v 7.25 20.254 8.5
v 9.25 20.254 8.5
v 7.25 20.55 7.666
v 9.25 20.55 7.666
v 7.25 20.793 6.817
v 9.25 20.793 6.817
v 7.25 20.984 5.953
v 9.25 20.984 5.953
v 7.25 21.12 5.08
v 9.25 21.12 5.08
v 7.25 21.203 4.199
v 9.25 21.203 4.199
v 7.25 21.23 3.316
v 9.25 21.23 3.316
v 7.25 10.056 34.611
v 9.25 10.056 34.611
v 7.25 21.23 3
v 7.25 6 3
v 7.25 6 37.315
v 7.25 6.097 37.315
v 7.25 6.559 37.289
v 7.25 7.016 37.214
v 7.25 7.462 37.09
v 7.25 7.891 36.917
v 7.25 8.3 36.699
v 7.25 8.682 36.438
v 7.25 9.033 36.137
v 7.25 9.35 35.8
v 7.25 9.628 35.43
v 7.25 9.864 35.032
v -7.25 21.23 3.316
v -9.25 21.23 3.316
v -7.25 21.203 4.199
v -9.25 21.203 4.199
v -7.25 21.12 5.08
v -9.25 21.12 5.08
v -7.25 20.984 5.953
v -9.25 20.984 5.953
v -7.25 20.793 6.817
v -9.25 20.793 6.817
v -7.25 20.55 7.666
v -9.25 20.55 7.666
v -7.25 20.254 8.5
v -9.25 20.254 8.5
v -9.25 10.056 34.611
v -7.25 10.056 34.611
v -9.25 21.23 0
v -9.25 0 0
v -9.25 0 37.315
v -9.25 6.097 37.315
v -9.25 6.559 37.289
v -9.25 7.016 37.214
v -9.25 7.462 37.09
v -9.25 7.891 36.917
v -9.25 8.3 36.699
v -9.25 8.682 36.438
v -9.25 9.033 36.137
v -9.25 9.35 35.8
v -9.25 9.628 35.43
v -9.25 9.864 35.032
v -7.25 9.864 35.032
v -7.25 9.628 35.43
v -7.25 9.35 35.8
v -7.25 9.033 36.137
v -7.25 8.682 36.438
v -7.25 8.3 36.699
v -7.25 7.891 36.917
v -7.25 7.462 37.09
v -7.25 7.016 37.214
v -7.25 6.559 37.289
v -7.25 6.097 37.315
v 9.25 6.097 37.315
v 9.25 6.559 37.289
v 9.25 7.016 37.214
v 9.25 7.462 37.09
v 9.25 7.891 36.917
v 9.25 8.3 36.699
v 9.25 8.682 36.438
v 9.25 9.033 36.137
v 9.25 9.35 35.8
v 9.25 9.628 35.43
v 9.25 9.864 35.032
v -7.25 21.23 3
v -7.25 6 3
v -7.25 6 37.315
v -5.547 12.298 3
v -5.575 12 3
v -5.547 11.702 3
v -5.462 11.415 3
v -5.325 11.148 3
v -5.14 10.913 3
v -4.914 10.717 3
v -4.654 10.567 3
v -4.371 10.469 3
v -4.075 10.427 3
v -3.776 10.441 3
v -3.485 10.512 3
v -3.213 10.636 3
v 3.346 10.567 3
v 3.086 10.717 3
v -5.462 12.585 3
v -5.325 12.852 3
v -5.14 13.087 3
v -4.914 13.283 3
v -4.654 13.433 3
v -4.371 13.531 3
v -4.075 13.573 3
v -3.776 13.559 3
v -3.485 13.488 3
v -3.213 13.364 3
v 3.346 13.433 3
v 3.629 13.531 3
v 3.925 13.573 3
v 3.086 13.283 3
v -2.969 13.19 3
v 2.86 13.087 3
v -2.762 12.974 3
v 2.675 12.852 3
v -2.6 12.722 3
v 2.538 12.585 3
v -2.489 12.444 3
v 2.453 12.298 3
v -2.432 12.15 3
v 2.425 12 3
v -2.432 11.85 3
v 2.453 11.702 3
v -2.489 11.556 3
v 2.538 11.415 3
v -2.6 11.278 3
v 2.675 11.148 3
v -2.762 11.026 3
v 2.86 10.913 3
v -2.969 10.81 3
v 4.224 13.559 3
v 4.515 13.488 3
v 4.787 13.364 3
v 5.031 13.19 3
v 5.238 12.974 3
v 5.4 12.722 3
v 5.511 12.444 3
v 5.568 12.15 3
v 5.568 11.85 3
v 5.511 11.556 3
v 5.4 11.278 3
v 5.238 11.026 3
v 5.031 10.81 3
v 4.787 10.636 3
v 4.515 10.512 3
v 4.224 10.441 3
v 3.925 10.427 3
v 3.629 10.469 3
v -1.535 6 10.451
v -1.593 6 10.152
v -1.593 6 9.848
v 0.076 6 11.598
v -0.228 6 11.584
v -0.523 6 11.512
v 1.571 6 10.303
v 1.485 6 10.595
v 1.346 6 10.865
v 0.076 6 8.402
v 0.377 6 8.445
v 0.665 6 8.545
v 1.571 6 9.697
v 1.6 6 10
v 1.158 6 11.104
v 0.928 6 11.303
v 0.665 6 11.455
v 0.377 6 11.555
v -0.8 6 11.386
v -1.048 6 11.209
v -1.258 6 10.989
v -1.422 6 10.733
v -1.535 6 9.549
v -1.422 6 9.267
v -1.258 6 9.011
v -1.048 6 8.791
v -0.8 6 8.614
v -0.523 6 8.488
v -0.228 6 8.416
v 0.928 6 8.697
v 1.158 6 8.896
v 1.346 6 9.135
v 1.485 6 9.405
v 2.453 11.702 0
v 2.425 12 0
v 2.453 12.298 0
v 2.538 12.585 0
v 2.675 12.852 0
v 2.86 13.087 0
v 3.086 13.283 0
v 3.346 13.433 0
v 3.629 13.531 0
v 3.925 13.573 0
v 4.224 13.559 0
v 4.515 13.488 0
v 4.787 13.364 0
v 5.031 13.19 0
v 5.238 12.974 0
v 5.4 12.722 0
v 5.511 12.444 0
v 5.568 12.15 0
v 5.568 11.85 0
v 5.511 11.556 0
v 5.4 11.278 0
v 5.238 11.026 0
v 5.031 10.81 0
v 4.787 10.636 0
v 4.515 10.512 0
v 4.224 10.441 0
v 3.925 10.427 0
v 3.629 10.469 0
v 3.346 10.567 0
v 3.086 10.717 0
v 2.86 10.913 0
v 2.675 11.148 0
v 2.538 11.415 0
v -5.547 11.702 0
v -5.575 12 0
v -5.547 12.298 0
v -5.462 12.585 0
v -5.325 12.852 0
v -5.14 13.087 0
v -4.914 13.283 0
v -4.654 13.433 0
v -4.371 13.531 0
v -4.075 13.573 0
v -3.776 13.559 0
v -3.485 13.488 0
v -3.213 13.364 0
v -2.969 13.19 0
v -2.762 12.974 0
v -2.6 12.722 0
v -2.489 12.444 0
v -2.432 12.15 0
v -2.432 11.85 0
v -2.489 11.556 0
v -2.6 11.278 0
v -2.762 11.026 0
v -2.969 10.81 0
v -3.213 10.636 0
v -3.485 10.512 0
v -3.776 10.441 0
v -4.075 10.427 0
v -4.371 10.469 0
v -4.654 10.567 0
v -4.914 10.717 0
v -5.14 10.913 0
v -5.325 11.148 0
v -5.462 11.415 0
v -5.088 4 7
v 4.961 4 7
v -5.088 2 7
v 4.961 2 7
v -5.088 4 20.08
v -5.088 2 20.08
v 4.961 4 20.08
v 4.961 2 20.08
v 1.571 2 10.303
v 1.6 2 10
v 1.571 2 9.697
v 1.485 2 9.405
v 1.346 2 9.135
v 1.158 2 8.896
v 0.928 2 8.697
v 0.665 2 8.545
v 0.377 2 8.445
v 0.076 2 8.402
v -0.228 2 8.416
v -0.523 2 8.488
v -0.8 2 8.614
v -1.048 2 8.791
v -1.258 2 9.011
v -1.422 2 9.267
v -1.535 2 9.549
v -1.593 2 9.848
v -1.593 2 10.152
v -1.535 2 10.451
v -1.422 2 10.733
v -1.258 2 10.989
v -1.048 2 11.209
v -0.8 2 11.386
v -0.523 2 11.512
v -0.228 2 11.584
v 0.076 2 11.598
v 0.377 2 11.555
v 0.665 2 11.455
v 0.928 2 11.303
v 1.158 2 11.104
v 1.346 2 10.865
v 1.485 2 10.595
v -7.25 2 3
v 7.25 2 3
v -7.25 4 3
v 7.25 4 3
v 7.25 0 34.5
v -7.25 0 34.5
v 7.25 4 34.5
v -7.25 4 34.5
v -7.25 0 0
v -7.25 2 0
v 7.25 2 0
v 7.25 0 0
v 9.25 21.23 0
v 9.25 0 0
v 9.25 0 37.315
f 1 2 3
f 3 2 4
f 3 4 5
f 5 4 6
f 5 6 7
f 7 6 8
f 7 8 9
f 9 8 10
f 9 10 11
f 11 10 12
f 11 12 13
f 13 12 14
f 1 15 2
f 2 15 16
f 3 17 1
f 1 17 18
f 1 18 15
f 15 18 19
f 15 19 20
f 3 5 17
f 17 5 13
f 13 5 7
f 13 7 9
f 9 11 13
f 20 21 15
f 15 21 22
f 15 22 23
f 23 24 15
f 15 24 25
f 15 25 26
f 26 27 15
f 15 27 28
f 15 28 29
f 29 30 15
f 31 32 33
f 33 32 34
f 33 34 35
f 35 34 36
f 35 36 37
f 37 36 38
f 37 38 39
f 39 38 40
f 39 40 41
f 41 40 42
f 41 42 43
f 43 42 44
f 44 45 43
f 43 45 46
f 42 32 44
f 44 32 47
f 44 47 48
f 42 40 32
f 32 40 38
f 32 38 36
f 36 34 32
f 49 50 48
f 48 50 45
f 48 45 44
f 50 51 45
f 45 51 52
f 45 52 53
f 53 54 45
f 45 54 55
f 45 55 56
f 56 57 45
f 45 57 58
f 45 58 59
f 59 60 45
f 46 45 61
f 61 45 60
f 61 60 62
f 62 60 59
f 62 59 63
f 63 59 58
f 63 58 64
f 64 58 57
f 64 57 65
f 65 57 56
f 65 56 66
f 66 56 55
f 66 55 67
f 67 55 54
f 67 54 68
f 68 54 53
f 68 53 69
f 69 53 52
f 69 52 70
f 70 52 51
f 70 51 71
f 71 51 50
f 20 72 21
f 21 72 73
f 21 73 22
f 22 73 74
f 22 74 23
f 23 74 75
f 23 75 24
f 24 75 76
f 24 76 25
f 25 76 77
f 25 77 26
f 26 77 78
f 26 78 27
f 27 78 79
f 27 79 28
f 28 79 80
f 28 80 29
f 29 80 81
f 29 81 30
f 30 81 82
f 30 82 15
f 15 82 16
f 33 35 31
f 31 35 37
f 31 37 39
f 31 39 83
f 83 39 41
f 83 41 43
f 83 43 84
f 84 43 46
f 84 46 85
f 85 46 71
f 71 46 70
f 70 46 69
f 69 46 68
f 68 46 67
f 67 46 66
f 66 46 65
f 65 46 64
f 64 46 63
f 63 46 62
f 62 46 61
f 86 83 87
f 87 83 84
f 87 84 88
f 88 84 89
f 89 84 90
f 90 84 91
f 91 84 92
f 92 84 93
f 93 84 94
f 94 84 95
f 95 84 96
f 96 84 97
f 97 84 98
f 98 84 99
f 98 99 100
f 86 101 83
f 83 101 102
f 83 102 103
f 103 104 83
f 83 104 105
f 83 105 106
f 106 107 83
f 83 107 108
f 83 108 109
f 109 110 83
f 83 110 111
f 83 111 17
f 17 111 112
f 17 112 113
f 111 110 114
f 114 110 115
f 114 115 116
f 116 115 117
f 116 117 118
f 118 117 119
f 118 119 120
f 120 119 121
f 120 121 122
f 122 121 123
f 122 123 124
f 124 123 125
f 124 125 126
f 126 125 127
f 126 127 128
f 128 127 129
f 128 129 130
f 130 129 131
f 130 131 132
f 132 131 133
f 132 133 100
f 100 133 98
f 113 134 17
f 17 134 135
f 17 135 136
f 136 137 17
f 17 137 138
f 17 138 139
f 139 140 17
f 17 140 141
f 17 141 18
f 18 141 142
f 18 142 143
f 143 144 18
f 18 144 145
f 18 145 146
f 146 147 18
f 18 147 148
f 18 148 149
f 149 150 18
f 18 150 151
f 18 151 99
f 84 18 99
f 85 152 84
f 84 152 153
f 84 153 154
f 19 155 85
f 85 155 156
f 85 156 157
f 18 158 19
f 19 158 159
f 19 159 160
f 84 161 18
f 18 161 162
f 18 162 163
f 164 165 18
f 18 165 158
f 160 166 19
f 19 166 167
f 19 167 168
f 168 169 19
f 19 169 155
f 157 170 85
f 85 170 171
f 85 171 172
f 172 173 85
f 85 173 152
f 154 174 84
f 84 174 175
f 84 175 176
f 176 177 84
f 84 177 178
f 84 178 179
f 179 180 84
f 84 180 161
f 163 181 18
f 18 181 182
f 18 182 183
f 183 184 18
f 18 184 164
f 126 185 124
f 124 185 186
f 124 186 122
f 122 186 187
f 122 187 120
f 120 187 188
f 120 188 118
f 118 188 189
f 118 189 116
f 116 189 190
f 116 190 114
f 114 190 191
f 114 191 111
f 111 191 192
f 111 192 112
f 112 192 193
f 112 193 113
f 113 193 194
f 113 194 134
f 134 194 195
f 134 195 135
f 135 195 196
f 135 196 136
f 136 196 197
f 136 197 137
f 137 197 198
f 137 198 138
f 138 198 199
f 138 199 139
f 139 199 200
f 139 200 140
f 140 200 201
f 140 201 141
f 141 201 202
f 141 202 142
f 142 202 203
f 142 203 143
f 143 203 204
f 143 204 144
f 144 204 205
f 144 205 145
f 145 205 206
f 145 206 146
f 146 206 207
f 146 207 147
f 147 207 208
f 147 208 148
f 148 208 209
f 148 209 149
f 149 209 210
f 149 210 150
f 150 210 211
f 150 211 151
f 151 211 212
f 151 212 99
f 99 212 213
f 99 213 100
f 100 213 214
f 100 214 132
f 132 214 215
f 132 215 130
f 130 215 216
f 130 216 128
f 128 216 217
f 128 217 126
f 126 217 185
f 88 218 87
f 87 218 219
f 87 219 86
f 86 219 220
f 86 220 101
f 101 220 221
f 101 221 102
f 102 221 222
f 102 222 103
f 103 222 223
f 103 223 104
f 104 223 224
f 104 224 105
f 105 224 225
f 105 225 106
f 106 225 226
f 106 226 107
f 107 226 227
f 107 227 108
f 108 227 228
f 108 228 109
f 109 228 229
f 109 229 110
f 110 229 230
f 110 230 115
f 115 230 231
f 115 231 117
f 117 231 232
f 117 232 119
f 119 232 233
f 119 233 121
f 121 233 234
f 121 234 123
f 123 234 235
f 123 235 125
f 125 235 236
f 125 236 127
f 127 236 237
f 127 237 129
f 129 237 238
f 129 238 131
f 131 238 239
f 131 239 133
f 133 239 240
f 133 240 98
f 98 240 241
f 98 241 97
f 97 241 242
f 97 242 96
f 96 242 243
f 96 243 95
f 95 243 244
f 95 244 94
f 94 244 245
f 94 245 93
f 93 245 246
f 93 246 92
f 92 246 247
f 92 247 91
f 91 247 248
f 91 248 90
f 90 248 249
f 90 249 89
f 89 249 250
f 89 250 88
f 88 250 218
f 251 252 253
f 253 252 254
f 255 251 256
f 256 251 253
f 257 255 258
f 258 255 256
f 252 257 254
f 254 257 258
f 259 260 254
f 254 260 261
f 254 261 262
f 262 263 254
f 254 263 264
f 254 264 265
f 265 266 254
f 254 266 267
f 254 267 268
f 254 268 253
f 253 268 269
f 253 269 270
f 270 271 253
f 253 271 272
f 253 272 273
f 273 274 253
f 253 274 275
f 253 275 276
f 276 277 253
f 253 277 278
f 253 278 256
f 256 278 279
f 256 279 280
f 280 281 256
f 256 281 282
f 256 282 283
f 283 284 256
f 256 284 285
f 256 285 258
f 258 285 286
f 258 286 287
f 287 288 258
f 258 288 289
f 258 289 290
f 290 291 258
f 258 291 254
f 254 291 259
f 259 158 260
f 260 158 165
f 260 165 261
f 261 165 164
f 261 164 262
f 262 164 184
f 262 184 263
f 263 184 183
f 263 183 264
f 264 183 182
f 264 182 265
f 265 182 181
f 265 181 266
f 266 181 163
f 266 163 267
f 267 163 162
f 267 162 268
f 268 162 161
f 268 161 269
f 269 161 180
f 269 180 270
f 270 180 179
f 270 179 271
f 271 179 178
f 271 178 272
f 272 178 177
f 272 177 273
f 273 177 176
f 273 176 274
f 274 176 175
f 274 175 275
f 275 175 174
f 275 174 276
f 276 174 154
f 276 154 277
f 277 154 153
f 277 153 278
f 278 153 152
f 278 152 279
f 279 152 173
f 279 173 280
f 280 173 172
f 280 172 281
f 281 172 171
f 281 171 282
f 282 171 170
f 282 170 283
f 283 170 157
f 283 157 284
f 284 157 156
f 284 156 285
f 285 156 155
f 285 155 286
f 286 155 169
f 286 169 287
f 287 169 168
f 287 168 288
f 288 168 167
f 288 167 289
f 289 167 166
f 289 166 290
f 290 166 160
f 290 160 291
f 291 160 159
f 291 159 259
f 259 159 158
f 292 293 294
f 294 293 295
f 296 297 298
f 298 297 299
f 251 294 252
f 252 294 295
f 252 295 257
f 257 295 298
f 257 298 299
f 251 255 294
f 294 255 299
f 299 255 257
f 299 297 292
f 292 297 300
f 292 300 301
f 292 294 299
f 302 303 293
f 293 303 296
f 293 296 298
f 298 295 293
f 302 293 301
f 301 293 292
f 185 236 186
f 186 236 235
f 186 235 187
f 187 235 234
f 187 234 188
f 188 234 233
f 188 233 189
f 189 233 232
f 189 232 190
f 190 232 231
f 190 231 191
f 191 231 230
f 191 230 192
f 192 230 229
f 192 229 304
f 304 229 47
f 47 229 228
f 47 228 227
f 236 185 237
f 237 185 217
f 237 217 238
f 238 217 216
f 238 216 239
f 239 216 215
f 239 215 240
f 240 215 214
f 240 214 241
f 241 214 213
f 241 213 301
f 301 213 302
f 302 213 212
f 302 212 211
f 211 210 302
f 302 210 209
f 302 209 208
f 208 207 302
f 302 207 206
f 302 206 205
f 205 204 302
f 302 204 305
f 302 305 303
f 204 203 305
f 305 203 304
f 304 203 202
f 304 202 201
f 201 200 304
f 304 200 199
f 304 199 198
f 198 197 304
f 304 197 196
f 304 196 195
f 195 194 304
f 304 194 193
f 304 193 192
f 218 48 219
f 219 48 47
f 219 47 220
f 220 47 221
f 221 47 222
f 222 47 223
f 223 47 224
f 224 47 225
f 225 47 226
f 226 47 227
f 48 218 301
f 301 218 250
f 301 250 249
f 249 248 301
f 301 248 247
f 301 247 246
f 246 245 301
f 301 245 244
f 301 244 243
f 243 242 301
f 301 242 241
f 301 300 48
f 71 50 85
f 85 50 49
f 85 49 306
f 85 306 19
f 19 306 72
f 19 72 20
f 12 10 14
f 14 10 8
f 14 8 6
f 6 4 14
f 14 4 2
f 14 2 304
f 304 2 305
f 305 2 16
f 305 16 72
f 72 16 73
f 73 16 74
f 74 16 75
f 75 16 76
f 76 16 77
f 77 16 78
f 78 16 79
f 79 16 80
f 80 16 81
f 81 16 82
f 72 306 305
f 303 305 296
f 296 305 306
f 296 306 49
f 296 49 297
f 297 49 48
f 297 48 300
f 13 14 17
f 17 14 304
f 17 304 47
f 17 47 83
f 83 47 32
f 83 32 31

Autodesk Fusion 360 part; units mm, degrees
sketch "vertical plane" plane through (0, 0, 0) normal (0, 1, 0) x (-1, 0, 0)
  circle A0 centre (0, 10) radius 1.6
  line L0 (-7.25, 0) -> (7.25, 0)
  line L1 (7.25, 0) -> (7.25, 37.31)
  line L2 (7.25, 37.31) -> (-7.25, 37.31)
  line L3 (-7.25, 37.31) -> (-7.25, 0)
  line L4 (0, 0) -> (0, 37.31)
  line L5 (-9.25, 0) -> (9.25, 0)
  line L6 (9.25, 0) -> (9.25, 37.3146)
  line L7 (9.25, 37.3146) -> (-9.25, 37.3146)
  line L8 (-9.25, 37.3146) -> (-9.25, 0)
  line L9 (-9.25, 3) -> (9.25, 3)
  line L10 (-7.25, 34.5) -> (7.25, 34.5)
  line L11 (-4.9614, 7) -> (5.0877, 7)
  line L12 (5.0877, 7) -> (5.0877, 20.0804)
  line L13 (5.0877, 20.0804) -> (-4.9614, 20.0804)
  line L14 (-4.9614, 20.0804) -> (-4.9614, 7)
  dimension "d43" = 3.2
  dimension "d72" = 14.5
  dimension "d73" = 2
  dimension "d74" = 3
  dimension "d75" = 31.5
  dimension "d76" = 7
  dimension "d77" = 4
sketch "Sketch25" plane through (0, 0, 0) normal (0, 0, 1) x (1, 0, 0)
  line L0 (9.25, 0) -> (-9.25, 0)
  line L1 (9.25, 0) -> (9.25, 21.23)
  line L2 (9.25, 21.23) -> (-9.25, 21.23)
  line L3 (-9.25, 21.23) -> (-9.25, 0)
  line L4 (-9.25, 12) -> (9.25, 12)
  line L5 (0, 21.23) -> (0, 0)
  line L6 (9.25, 0) -> (-9.25, 0)
  circle A0 centre (-4, 12) radius 1.575
  circle A1 centre (4, 12) radius 1.575
  point P0 (7.25, 0)
  point P1 (9.25, 0)
  point P2 (-7.25, 0)
  point P3 (-9.25, 0)
  dimension "d112" = 21.23
  dimension "d113" = 12
  dimension "d114" = 3.15
  dimension "d115" = 3.15
  dimension "d116" = 8
ref_plane "WorkPlane2" through (9.25, 0, 18.6573) normal (-1, 0, 0) x (0, 0, -1)
sketch "side plane details" plane through (9.25, 0, 0) normal (-1, 0, 0) x (0, -1, 0)
  line L0 (0, 0) -> (-21.2275, 0)
  line L1 (-21.2275, 0) -> (-21.2275, 3)
  line L2 (-21.2275, 3) -> (0, 3)
  line L3 (0, 3) -> (0, 0)
  line L4 (0, 37.3146) -> (-9, 37.3146)
  line L5 (-9, 37.3146) -> (-9, 0)
  line L6 (-9, 0) -> (0, 0)
  line L7 (0, 0) -> (0, 37.3146)
  line L8 (-6, 0) -> (-6, 37.3146)
  line L9 (0, 3) -> (-21.4, 3)
  line L10 (0, 5.7) -> (0, 3)
  line L11 (-21.23, 0) -> (0, 0)
  line L12 (0, 0) -> (0, 5.9996)
  line L13 (0, 5.9996) -> (-21.23, 5.9996)
  line L14 (-21.23, 5.9996) -> (-21.23, 0)
  line L15 (-9, 37.3146) -> (-21.23, 5.9996)
  point P0 (0, 37.3146)
  point P1 (-21.23, 0)
  dimension "d83" = 9
  dimension "d84" = 3
  dimension "d89" = 6
extrude "Extrude25" add sketch "Sketch25" along normal blind 3
extrude "Extrude26" add sketch "vertical plane" along normal blind 6
extrude "Extrude27" cut sketch "vertical plane" along normal blind 2 contours L0 L1 L4 L5 L9 | L0 L3 L4 L5 L9
extrude "Extrude28" cut sketch "vertical plane" along normal blind 4 contours A0 L4 | A0 L4 L11 L12 L13 | A0 L4 | A0 L4 L11 L13 L14 | L3 L4 L9 L10 L11 L13 L14 | L1 L4 L9 L10 L11 L12 L13
extrude "Extrude29" cut sketch "vertical plane" along normal blind 2 from surface at 4 contours A0 L4 | A0 L4
extrude "Extrude30" add sketch "vertical plane" against normal blind 2 from surface at 4 contours A0 L4 L11 L12 L13 | A0 L4 L11 L13 L14
extrude "Extrude31" cut sketch "Sketch25" along normal blind 3 contours L4 A1 | L4 A1 | L4 A0 | L4 A0
extrude "Extrude32" add sketch "side plane details" along normal blind 2 contours L2 L5 L8 L9 L13 | L2 L5 L9 L13 L14 | L4 L5 L8 L13 | L5 L13 L15
extrude "Extrude33" add 1 faces at (7.25, 12.0767, 15.4381) along direction (-1, 0, 0) blind 2 from surface at 14.5
fillet "Fillet1" radius 4.25 2 edges at (8.25, 9, 37.3146) (-8.25, 9, 37.3146)
fillet "Fillet2" radius 14.25 2 edges at (-8.25, 21.23, 5.9996) (8.25, 21.23, 5.9996)
